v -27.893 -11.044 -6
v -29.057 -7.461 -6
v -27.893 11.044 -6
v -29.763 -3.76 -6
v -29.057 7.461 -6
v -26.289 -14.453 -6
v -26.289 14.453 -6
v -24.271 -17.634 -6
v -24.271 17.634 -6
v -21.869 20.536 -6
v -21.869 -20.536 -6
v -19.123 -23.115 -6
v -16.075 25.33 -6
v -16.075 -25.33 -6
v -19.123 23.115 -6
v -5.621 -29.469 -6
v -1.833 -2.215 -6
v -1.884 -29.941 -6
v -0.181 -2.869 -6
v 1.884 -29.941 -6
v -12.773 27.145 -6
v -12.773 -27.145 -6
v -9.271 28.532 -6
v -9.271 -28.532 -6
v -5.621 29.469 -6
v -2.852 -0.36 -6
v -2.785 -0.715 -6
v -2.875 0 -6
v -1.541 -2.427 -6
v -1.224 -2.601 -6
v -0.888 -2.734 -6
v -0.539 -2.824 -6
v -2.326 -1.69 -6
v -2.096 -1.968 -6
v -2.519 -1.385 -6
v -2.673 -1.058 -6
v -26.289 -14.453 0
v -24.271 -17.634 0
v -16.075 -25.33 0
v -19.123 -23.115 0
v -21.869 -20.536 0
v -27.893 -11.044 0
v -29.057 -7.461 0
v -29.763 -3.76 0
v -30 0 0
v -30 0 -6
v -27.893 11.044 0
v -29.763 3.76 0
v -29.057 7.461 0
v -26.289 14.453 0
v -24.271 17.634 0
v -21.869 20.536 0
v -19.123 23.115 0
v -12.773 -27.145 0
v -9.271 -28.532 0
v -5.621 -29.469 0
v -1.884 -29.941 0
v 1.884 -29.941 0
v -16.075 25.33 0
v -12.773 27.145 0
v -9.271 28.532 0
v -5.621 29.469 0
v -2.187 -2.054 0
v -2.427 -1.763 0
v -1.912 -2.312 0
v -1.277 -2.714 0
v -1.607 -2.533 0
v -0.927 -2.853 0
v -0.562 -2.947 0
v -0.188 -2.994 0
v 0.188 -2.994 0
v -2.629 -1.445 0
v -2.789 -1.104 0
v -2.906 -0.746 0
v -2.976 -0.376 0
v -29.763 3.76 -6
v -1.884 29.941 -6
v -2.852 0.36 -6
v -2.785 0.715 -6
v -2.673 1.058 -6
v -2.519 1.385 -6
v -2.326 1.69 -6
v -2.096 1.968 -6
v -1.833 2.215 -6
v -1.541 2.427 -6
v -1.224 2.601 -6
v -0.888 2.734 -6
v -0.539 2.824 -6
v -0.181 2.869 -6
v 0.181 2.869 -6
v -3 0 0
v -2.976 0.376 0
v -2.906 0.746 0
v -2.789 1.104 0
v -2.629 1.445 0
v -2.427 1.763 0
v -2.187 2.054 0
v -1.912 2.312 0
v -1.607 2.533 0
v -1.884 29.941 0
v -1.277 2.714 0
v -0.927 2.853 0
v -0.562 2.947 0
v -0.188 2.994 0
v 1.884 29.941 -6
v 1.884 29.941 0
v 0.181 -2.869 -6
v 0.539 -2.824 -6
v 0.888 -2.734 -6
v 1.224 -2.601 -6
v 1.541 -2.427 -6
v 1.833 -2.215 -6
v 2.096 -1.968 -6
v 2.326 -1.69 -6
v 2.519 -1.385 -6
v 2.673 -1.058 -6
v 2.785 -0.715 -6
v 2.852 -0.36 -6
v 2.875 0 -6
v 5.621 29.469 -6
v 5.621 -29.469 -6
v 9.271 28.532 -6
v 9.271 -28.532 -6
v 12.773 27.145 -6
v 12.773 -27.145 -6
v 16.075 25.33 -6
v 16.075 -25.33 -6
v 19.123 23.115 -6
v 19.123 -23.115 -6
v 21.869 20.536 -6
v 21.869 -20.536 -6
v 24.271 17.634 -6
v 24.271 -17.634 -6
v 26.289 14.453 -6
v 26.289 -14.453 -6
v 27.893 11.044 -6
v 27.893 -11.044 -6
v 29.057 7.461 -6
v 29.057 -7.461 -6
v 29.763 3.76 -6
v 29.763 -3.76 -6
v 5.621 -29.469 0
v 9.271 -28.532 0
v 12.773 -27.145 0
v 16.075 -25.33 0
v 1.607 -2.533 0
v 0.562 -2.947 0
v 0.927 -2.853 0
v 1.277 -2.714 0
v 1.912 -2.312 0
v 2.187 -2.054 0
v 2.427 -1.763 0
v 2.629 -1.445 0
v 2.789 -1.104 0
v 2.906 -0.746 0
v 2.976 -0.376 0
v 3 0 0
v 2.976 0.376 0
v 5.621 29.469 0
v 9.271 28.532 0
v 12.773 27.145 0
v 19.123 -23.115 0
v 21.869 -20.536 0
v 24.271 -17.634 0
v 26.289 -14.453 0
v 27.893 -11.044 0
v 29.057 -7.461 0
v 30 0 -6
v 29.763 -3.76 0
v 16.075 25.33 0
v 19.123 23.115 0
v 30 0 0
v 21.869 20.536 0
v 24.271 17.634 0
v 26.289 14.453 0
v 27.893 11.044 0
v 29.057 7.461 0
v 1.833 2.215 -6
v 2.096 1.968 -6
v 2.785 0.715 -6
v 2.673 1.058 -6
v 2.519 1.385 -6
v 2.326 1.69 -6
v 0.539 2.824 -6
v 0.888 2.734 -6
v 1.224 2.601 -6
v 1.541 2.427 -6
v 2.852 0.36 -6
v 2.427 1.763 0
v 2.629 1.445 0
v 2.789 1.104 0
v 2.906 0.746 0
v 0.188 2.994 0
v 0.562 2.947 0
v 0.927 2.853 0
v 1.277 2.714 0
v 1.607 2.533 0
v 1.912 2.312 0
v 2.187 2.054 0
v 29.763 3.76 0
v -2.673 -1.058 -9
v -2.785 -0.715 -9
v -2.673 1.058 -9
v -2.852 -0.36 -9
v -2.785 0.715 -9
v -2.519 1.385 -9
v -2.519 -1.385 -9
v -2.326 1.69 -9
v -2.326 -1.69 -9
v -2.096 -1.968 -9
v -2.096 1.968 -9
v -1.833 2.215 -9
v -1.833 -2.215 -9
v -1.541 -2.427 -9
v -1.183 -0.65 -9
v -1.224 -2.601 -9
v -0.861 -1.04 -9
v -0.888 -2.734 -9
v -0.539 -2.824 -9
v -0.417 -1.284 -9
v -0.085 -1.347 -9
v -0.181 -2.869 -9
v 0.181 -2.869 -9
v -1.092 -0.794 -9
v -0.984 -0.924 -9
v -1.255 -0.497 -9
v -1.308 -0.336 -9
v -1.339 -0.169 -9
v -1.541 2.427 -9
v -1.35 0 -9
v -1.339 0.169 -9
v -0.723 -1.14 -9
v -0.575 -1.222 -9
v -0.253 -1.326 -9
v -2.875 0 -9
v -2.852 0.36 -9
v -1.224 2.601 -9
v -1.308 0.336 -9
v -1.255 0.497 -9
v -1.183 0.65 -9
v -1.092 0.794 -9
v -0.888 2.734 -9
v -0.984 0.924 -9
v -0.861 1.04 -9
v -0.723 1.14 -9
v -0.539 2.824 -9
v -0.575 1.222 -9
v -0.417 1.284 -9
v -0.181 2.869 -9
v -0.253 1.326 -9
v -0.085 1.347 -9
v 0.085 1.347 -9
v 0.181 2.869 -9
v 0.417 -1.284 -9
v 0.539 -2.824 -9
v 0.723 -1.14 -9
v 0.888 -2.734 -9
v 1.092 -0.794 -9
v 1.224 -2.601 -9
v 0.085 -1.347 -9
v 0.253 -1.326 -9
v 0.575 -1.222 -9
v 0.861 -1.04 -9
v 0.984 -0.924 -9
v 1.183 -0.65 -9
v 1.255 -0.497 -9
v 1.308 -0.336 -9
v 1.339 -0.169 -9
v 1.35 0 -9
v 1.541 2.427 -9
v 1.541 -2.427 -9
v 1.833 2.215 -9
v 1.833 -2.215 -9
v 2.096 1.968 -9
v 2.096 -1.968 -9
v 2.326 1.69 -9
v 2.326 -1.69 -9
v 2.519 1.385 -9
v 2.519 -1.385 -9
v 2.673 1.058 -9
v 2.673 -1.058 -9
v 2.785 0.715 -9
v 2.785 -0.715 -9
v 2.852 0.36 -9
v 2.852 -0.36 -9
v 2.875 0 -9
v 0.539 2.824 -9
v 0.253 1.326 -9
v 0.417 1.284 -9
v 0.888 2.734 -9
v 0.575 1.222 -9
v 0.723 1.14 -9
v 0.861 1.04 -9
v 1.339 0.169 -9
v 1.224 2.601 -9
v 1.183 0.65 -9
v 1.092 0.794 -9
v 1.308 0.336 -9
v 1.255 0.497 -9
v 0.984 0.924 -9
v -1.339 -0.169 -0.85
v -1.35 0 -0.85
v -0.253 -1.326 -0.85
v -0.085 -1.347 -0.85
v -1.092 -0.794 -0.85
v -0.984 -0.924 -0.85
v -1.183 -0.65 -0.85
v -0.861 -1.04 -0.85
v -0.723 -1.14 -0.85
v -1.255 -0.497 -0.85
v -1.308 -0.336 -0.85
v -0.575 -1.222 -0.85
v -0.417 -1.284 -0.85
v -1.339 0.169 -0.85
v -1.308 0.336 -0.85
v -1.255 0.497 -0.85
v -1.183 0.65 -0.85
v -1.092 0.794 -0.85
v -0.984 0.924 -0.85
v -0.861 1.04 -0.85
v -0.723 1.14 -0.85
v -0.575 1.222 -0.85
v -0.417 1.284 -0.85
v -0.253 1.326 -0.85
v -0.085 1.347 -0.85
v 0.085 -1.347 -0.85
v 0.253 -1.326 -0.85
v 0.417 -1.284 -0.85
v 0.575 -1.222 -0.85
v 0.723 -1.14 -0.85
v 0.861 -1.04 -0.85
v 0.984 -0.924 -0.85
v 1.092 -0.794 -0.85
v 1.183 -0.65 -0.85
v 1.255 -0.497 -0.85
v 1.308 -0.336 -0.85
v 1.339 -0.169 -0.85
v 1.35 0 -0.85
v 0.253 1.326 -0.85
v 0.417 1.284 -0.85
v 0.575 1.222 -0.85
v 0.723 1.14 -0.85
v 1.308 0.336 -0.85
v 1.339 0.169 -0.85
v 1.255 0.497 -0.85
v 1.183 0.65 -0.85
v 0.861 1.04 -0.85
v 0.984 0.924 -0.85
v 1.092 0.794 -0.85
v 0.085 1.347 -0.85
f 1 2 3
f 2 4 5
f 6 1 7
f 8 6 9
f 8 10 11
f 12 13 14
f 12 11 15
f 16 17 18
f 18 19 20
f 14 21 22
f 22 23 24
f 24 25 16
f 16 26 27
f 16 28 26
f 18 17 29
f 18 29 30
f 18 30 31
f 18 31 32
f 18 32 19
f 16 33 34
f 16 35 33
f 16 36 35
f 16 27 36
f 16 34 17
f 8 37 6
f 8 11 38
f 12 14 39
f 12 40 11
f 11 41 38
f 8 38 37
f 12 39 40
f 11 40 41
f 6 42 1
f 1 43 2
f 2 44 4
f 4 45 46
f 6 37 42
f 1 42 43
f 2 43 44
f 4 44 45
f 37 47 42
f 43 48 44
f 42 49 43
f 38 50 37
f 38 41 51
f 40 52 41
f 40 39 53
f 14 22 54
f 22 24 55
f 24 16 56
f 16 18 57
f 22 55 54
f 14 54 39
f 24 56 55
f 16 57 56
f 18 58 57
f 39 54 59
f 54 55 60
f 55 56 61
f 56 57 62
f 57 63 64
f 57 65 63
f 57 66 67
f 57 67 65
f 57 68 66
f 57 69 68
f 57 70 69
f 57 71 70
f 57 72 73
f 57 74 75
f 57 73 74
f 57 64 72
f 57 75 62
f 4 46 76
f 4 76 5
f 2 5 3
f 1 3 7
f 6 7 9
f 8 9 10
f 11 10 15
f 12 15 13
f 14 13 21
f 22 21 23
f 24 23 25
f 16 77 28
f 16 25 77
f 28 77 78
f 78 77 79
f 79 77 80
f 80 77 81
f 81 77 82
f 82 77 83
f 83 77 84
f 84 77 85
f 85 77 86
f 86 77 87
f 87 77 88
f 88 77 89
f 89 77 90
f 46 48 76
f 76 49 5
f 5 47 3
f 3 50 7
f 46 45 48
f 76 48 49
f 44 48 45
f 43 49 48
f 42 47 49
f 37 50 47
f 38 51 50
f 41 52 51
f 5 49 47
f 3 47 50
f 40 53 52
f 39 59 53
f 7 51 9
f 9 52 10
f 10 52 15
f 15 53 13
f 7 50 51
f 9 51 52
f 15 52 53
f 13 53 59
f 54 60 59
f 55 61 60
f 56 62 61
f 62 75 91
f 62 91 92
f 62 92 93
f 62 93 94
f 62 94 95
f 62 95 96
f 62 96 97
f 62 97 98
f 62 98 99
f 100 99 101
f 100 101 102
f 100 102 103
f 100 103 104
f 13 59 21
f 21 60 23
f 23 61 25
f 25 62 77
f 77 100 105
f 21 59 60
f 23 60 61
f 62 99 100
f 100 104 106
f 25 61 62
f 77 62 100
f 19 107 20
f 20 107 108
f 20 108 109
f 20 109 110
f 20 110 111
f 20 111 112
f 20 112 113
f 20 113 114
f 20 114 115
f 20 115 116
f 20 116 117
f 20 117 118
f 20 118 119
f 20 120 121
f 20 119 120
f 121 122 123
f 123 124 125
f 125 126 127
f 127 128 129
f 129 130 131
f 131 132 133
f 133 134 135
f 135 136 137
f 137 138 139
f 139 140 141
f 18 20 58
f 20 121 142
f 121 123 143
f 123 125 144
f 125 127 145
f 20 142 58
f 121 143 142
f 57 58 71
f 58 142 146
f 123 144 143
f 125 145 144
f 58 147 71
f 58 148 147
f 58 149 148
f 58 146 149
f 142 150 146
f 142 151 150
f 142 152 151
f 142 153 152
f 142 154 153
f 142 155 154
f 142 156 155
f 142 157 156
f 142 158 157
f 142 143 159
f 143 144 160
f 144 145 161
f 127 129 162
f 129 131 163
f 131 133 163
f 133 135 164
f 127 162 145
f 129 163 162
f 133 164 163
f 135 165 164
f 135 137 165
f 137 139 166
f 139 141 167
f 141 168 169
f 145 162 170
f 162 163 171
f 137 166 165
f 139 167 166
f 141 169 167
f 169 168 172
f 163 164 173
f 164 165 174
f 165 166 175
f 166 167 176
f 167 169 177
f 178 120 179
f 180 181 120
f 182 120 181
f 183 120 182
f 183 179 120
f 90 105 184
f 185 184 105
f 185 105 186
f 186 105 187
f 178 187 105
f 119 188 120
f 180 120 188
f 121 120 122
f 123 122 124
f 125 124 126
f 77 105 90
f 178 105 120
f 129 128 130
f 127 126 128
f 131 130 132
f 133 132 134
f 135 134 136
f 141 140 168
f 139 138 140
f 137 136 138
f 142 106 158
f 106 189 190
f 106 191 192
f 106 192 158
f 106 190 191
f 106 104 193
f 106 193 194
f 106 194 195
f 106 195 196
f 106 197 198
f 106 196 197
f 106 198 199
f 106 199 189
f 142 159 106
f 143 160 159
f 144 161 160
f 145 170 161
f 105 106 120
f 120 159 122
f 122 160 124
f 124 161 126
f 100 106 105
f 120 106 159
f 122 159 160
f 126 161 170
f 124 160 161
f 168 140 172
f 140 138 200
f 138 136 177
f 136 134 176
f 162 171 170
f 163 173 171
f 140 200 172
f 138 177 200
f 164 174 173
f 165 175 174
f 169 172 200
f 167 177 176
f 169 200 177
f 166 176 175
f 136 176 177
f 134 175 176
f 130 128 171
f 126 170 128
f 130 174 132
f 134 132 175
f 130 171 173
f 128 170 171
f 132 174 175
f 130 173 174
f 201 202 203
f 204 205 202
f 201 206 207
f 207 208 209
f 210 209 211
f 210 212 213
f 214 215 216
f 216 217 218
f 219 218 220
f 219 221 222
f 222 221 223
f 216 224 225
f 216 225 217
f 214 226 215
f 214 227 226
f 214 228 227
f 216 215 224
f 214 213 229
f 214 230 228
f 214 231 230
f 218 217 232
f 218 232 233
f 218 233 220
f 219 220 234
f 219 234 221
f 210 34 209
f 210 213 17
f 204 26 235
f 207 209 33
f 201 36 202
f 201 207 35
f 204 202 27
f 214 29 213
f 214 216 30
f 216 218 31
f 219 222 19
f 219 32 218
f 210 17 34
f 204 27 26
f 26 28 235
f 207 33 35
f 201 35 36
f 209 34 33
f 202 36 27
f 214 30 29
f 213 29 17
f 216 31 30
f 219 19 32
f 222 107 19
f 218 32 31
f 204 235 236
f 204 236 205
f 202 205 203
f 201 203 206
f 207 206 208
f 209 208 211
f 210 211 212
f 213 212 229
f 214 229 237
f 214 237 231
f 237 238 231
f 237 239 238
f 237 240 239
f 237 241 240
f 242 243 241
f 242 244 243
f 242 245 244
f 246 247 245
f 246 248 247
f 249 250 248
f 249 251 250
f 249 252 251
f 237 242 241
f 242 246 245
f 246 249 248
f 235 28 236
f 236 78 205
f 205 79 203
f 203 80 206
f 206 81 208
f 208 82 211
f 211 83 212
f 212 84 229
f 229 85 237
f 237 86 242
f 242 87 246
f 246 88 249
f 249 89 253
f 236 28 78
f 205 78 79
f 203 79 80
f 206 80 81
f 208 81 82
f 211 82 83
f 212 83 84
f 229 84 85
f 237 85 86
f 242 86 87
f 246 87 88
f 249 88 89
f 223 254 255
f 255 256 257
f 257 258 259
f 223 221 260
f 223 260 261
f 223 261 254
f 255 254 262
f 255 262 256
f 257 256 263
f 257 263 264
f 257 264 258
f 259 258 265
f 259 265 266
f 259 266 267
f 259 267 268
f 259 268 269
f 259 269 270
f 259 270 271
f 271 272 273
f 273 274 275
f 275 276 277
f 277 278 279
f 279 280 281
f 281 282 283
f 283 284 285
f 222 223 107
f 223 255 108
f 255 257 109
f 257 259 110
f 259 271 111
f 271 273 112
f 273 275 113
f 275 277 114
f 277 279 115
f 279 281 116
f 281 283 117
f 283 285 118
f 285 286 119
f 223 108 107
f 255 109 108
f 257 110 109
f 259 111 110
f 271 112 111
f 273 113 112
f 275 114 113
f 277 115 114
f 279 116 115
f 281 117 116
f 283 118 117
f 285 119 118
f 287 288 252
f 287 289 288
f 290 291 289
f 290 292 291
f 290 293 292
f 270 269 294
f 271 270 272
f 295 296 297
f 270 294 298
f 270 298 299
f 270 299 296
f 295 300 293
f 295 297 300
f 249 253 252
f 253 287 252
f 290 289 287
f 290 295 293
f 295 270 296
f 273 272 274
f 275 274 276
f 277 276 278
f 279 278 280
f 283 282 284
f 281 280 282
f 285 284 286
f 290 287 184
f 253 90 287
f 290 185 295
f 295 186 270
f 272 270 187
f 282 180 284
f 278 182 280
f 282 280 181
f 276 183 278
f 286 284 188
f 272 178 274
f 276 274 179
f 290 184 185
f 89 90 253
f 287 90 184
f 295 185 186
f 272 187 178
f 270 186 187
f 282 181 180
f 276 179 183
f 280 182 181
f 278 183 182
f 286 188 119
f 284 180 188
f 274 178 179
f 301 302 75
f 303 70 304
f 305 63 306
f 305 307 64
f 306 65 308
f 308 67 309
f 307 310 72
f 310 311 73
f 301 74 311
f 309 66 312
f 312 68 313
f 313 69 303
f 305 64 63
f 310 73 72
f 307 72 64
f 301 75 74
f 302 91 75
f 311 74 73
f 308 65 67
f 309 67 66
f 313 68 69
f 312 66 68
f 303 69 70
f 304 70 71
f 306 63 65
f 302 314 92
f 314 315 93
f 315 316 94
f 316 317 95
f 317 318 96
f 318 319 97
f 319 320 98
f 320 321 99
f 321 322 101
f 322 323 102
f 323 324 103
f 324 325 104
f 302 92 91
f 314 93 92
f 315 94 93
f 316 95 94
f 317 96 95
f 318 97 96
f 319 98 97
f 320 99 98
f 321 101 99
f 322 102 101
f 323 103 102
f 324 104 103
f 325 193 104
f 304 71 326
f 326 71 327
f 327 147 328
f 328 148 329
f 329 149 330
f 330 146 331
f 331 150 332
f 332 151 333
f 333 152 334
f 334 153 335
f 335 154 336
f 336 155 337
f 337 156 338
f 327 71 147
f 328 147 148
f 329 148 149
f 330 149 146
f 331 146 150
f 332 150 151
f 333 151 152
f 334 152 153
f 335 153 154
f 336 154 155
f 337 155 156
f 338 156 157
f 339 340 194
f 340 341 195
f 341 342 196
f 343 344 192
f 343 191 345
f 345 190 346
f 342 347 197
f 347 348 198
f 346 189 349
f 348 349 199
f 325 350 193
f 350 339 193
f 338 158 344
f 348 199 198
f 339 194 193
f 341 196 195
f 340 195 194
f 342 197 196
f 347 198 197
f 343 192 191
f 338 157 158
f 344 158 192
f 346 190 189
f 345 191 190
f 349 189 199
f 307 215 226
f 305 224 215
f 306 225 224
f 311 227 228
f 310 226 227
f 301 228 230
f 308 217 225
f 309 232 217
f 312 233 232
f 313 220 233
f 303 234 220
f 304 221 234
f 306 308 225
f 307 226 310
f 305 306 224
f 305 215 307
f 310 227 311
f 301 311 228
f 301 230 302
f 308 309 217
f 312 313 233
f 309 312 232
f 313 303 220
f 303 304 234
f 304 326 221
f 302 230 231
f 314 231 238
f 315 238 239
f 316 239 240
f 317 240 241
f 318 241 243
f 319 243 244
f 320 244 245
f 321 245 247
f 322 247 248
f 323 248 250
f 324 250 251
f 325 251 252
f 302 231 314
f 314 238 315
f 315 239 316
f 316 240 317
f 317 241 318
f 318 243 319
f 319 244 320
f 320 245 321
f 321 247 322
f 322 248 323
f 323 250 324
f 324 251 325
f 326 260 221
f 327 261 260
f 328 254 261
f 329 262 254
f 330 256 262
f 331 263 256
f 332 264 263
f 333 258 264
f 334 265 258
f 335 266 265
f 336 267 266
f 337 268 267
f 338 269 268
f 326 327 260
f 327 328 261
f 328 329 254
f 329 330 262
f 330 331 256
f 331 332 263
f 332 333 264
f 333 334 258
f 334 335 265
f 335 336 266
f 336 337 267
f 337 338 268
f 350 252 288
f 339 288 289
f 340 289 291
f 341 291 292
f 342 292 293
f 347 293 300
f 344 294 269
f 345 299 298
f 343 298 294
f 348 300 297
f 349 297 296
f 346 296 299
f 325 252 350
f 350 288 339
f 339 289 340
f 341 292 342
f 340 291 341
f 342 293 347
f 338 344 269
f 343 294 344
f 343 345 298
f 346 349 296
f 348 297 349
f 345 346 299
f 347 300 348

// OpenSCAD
$fn = 50;

difference() {
	union() {
		translate(v = [0, 0, -6.0]) {
			cylinder(h = 6, r = 30.0);
		}
		#translate(v = [0, 0, -9.0]) {
			cylinder(h = 9, r = 2.875);
		}
	}
	union() {
		translate(v = [0, 0, 0]) {
			rotate(a = [0, 0, 0]) {
				difference() {
					union() {
						translate(v = [0, 0, -9.0]) {
							cylinder(h = 9, r = 1.0);
						}
						translate(v = [0, 0, -0.85]) {
							cylinder(h = 0.85, r1 = 1.35, r2 = 3.0);
						}
						translate(v = [0, 0, -9.0]) {
							cylinder(h = 9, r = 1.35);
						}
						translate(v = [0, 0, -9.0]) {
							cylinder(h = 9, r = 1.0);
						}
					}
					union();
				}
			}
		}
	}
}
